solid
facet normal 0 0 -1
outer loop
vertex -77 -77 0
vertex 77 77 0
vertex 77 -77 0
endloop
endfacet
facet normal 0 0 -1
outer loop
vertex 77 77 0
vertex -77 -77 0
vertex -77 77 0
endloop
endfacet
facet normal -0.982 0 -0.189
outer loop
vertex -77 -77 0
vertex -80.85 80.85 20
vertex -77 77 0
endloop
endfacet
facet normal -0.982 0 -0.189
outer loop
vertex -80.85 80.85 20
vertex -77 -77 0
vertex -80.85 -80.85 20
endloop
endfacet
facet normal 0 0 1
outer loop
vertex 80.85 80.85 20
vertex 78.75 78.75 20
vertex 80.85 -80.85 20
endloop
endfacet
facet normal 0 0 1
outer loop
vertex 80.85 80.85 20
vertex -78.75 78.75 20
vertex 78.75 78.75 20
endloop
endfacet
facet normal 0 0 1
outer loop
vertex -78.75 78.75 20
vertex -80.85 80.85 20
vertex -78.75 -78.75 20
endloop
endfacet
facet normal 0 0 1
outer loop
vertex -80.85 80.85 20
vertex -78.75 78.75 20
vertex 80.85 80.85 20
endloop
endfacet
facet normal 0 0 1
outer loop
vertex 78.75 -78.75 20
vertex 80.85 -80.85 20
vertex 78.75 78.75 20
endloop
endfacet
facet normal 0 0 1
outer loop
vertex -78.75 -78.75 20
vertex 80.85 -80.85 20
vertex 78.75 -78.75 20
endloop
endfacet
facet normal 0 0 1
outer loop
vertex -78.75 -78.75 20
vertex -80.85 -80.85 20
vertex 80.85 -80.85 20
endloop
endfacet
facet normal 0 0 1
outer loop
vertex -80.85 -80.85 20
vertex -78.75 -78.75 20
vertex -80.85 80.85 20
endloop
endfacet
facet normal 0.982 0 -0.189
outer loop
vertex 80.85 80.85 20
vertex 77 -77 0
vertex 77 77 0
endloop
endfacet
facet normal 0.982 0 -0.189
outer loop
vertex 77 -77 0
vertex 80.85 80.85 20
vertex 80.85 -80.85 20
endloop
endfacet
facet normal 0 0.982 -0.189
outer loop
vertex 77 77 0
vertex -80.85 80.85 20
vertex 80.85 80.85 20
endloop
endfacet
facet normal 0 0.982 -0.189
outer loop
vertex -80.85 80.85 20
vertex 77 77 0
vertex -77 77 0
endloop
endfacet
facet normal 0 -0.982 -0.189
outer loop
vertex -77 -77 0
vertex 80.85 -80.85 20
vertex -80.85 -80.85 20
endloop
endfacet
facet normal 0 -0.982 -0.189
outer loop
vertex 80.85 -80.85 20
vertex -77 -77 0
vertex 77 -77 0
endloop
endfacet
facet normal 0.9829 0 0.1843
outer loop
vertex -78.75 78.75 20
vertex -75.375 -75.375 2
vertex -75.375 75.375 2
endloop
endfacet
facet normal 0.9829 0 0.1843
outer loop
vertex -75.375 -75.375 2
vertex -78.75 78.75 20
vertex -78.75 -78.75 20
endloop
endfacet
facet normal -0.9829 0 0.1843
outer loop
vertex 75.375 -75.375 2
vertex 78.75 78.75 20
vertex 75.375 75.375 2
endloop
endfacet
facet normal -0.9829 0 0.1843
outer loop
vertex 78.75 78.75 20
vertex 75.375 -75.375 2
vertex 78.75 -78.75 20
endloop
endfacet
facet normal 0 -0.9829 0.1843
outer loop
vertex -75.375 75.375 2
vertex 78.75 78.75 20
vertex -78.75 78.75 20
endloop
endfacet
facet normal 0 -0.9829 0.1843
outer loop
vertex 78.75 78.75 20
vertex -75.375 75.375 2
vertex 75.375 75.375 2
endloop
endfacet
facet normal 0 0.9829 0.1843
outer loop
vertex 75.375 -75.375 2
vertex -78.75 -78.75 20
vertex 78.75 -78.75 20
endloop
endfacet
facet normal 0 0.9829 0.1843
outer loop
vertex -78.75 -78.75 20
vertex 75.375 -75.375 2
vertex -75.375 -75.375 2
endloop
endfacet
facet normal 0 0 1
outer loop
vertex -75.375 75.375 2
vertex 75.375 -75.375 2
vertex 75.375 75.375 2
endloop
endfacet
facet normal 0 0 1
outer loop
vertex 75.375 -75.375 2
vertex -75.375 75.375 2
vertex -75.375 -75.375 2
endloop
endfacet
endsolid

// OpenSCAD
side = 150;
height = 20;
thickness = 2;
opening = 1.05;
side_w_walls = side + 2*thickness;

union()
{
  difference()
  {
    linear_extrude(height = height, scale = opening)
      translate([-side_w_walls/2, -side_w_walls/2, 0])
        square([side_w_walls, side_w_walls]);

    linear_extrude(height = height, scale = opening)
      translate([-side/2, -side/2, 0])
        square([side, side]);
  }

  translate([-side_w_walls/2, -side_w_walls/2, 0])
    cube([side_w_walls, side_w_walls, thickness]);
}
